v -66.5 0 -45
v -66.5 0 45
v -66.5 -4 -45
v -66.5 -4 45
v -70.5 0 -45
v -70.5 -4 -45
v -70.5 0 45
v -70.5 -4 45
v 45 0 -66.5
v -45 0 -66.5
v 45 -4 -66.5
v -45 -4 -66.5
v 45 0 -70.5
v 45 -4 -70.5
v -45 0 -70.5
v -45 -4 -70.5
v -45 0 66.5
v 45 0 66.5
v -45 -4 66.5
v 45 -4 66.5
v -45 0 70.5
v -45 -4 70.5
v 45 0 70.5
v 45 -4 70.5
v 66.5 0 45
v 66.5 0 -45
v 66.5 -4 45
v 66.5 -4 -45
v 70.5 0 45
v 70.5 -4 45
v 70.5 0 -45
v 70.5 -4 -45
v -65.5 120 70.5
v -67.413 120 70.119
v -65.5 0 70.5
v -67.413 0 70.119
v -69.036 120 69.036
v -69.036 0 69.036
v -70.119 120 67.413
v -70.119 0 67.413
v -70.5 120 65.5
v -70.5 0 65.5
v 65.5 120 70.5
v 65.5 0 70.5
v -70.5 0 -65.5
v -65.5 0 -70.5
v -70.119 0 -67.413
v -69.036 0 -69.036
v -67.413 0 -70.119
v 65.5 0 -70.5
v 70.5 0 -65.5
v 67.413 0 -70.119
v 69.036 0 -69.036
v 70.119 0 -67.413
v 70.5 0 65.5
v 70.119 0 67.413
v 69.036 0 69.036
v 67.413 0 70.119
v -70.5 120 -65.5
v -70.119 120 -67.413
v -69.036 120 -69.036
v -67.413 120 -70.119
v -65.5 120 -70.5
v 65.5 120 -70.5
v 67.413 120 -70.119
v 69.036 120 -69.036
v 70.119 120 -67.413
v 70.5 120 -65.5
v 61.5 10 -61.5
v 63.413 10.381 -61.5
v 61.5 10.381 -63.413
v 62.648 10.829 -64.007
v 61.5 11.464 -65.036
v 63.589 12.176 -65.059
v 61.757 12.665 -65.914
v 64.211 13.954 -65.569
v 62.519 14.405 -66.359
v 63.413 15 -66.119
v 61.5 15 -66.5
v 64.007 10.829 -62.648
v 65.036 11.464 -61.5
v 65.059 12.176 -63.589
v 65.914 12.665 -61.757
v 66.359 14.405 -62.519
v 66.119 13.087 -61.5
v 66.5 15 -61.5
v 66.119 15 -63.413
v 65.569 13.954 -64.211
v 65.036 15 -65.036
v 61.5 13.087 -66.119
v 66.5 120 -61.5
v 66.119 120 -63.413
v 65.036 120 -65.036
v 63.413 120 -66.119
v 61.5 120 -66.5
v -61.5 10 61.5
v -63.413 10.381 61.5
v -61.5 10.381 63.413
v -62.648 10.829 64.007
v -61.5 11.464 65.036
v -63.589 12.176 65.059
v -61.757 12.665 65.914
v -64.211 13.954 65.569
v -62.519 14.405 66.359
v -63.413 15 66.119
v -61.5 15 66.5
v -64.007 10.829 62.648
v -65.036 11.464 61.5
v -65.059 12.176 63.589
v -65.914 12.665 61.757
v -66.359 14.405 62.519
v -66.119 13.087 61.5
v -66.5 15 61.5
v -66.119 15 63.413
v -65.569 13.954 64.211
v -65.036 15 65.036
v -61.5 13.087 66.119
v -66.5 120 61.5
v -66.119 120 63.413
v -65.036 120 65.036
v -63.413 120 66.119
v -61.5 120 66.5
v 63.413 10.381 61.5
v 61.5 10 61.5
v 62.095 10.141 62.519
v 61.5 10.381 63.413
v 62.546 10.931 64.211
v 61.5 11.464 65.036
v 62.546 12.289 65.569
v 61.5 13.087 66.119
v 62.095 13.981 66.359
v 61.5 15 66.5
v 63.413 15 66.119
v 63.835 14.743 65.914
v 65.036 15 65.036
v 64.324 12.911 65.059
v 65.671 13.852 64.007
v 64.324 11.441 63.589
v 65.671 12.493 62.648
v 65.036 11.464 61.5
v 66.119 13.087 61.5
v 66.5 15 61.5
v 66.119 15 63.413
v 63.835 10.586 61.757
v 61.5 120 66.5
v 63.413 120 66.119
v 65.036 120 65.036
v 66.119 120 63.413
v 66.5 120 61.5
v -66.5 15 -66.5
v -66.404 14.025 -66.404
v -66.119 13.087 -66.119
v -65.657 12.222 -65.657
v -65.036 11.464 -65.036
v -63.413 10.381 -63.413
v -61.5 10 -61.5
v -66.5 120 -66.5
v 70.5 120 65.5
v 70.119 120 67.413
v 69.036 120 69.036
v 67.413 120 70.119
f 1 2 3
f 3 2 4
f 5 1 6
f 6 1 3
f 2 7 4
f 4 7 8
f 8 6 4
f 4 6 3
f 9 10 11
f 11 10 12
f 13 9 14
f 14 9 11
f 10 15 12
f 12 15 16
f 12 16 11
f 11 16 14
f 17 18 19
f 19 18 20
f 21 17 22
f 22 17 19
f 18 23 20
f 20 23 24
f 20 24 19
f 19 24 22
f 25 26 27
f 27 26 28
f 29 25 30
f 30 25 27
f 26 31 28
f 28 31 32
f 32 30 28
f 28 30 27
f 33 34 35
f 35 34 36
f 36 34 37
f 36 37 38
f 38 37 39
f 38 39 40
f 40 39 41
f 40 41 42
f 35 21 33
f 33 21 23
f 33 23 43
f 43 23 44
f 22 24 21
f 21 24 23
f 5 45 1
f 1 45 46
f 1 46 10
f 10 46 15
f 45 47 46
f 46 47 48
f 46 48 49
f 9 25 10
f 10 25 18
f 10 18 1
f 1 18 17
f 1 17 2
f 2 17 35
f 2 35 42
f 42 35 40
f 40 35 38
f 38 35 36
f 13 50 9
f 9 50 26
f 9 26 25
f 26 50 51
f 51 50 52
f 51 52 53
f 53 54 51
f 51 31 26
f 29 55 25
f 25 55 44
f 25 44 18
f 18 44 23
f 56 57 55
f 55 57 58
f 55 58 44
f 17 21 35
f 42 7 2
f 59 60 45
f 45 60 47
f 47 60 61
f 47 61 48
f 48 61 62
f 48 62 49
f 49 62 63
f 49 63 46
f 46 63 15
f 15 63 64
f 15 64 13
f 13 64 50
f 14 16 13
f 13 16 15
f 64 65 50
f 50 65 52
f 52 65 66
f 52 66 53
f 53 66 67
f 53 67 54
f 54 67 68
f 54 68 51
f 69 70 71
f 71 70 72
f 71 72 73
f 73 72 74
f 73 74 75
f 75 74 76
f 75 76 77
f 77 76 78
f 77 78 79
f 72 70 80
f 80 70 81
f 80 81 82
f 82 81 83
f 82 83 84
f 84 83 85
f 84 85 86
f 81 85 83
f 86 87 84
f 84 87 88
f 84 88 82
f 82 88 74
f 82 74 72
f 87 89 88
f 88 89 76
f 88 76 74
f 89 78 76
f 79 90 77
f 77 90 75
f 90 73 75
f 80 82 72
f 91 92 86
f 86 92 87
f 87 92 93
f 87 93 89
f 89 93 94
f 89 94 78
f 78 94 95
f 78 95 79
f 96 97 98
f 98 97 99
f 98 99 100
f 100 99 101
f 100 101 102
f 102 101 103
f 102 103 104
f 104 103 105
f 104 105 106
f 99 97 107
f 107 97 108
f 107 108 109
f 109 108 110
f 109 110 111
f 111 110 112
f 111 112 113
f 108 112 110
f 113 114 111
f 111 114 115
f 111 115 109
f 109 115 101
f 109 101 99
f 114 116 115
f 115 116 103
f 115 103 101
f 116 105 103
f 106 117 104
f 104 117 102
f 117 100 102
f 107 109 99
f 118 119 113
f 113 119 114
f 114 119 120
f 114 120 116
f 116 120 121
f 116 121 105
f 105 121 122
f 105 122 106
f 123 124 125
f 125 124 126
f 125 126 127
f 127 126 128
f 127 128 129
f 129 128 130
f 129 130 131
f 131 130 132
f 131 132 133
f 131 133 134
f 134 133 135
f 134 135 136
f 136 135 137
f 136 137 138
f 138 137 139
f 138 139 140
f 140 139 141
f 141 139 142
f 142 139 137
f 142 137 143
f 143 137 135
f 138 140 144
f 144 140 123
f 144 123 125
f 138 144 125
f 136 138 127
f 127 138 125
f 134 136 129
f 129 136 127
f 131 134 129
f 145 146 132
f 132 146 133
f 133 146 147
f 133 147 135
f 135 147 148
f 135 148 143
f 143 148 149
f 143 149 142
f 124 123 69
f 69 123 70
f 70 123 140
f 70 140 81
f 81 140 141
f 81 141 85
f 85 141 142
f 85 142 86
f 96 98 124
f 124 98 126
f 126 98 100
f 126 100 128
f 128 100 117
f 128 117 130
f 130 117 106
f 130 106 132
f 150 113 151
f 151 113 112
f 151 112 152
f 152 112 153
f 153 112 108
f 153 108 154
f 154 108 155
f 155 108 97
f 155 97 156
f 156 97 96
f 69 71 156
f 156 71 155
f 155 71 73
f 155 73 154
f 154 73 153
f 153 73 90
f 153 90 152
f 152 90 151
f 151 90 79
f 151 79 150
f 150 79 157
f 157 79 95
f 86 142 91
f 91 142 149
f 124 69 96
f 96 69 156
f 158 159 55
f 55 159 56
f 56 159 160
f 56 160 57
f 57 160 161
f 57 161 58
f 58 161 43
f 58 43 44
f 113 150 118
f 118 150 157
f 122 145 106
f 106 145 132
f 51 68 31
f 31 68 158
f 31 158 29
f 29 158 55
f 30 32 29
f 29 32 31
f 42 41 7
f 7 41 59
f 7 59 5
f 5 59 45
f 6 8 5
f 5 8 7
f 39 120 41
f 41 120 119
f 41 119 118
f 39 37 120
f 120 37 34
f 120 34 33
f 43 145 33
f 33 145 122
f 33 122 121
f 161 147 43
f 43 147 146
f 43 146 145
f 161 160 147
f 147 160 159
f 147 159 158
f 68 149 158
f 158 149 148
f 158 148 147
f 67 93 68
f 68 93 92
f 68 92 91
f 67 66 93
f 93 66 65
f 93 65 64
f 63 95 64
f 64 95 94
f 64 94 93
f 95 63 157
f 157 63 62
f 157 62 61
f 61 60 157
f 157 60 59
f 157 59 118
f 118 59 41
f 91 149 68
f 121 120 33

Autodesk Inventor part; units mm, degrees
ref_plane "YZ Plane" through (0, 0, 0) normal (1, 0, 0) x (0, 1, 0)
ref_plane "XZ Plane" through (0, 0, 0) normal (0, 1, 0) x (-1, 0, 0)
ref_plane "XY Plane" through (0, 0, 0) normal (0, 0, 1) x (1, 0, 0)
sketch "Эскиз1" plane through (0, 0, 0) normal (0, 1, 0) x (-1, 0, 0)
  line L0 (-70.5, 70.5) -> (70.5, 70.5)
  line L1 (70.5, 70.5) -> (70.5, -70.5)
  line L2 (70.5, -70.5) -> (-70.5, -70.5)
  line L3 (-70.5, -70.5) -> (-70.5, 70.5)
  line L4 (-70.5, 70.5) -> (70.5, -70.5) construction
  line L5 (70.5, 70.5) -> (-70.5, -70.5) construction
  point P0 (0, 0)
  dimension "d0" = 141
extrude "Выдавливание1" add sketch "Эскиз1" along normal blind 120
sketch "Эскиз2" plane through (0, 120, 0) normal (0, 1, 0) x (1, 0, 0)
  line L0 (66.5, -66.5) -> (-66.5, -66.5)
  line L1 (-66.5, -66.5) -> (-66.5, 66.5)
  line L2 (-66.5, 66.5) -> (66.5, 66.5)
  line L3 (66.5, 66.5) -> (66.5, -66.5)
  line L4 (66.5, -66.5) -> (-66.5, 66.5) construction
  line L5 (-66.5, -66.5) -> (66.5, 66.5) construction
  line L6 (-70.5, 70.5) -> (-70.5, -70.5) projected
  point P0 (0, 0)
  dimension "d3" = 4
extrude "Выдавливание2" cut sketch "Эскиз2" against normal blind 110
fillet "Сопряжение1" radius 5 11 edges at (70.5, 60, 70.5) (66.5, 65, 66.5) (70.5, 60, -70.5) (66.5, 65, -66.5) (-66.5, 65, 66.5) (-66.5, 10, 0) (0, 10, 66.5) (66.5, 10, 0) (0, 10, -66.5) (-70.5, 60, -70.5) (-70.5, 60, 70.5)
sketch "Эскиз3" plane through (0, 0, 0) normal (0, -1, 0) x (1, 0, 0)
  arc A0 (-65.5, 70.5) -> (-70.5, 65.5) centre (-65.5, 65.5) ccw projected
  line L0 (-70.5, -65.5) -> (-70.5, 65.5) projected
  arc A1 (-70.5, -65.5) -> (-65.5, -70.5) centre (-65.5, -65.5) ccw projected
  line L1 (65.5, -70.5) -> (-65.5, -70.5) projected
  arc A2 (65.5, -70.5) -> (70.5, -65.5) centre (65.5, -65.5) ccw projected
  line L2 (70.5, 65.5) -> (70.5, -65.5) projected
  arc A3 (70.5, 65.5) -> (65.5, 70.5) centre (65.5, 65.5) ccw projected
  line L3 (-65.5, 70.5) -> (65.5, 70.5) projected
  line L4 (45, -70.5) -> (-45, -70.5)
  line L5 (-45, -70.5) -> (-45, -66.5)
  line L6 (-45, -66.5) -> (45, -66.5)
  line L7 (45, -66.5) -> (45, -70.5)
  line L8 (70.5, 65.5) -> (70.5, -65.5) projected
  line L9 (70.5, -45) -> (70.5, 45)
  line L10 (70.5, 45) -> (66.5, 45)
  line L11 (66.5, 45) -> (66.5, -45)
  line L12 (66.5, -45) -> (70.5, -45)
  line L13 (-70.5, -45) -> (-70.5, 45)
  line L14 (-70.5, 45) -> (-66.5, 45)
  line L15 (-66.5, 45) -> (-66.5, -45)
  line L16 (-66.5, -45) -> (-70.5, -45)
  line L17 (-65.5, 70.5) -> (65.5, 70.5) projected
  line L18 (45, 70.5) -> (-45, 70.5)
  line L19 (-45, 70.5) -> (-45, 66.5)
  line L20 (-45, 66.5) -> (45, 66.5)
  line L21 (45, 66.5) -> (45, 70.5)
  line L22 (0, 0) -> (0, -15.64) construction
  line L23 (0, 0) -> (-17.2484, 0) construction
  point P0 (45, 70.5)
  point P1 (-45, 70.5)
  point P2 (70.5, 45)
  dimension "d7" = 4
  dimension "d8" = 90
extrude "Выдавливание3" add sketch "Эскиз3" along normal blind 4 contours L3 L21 L20 L19 | L14 L15 L16 L0 | L2 L12 L11 L10 | L5 L6 L7 L1
properties part number "сосуд"
